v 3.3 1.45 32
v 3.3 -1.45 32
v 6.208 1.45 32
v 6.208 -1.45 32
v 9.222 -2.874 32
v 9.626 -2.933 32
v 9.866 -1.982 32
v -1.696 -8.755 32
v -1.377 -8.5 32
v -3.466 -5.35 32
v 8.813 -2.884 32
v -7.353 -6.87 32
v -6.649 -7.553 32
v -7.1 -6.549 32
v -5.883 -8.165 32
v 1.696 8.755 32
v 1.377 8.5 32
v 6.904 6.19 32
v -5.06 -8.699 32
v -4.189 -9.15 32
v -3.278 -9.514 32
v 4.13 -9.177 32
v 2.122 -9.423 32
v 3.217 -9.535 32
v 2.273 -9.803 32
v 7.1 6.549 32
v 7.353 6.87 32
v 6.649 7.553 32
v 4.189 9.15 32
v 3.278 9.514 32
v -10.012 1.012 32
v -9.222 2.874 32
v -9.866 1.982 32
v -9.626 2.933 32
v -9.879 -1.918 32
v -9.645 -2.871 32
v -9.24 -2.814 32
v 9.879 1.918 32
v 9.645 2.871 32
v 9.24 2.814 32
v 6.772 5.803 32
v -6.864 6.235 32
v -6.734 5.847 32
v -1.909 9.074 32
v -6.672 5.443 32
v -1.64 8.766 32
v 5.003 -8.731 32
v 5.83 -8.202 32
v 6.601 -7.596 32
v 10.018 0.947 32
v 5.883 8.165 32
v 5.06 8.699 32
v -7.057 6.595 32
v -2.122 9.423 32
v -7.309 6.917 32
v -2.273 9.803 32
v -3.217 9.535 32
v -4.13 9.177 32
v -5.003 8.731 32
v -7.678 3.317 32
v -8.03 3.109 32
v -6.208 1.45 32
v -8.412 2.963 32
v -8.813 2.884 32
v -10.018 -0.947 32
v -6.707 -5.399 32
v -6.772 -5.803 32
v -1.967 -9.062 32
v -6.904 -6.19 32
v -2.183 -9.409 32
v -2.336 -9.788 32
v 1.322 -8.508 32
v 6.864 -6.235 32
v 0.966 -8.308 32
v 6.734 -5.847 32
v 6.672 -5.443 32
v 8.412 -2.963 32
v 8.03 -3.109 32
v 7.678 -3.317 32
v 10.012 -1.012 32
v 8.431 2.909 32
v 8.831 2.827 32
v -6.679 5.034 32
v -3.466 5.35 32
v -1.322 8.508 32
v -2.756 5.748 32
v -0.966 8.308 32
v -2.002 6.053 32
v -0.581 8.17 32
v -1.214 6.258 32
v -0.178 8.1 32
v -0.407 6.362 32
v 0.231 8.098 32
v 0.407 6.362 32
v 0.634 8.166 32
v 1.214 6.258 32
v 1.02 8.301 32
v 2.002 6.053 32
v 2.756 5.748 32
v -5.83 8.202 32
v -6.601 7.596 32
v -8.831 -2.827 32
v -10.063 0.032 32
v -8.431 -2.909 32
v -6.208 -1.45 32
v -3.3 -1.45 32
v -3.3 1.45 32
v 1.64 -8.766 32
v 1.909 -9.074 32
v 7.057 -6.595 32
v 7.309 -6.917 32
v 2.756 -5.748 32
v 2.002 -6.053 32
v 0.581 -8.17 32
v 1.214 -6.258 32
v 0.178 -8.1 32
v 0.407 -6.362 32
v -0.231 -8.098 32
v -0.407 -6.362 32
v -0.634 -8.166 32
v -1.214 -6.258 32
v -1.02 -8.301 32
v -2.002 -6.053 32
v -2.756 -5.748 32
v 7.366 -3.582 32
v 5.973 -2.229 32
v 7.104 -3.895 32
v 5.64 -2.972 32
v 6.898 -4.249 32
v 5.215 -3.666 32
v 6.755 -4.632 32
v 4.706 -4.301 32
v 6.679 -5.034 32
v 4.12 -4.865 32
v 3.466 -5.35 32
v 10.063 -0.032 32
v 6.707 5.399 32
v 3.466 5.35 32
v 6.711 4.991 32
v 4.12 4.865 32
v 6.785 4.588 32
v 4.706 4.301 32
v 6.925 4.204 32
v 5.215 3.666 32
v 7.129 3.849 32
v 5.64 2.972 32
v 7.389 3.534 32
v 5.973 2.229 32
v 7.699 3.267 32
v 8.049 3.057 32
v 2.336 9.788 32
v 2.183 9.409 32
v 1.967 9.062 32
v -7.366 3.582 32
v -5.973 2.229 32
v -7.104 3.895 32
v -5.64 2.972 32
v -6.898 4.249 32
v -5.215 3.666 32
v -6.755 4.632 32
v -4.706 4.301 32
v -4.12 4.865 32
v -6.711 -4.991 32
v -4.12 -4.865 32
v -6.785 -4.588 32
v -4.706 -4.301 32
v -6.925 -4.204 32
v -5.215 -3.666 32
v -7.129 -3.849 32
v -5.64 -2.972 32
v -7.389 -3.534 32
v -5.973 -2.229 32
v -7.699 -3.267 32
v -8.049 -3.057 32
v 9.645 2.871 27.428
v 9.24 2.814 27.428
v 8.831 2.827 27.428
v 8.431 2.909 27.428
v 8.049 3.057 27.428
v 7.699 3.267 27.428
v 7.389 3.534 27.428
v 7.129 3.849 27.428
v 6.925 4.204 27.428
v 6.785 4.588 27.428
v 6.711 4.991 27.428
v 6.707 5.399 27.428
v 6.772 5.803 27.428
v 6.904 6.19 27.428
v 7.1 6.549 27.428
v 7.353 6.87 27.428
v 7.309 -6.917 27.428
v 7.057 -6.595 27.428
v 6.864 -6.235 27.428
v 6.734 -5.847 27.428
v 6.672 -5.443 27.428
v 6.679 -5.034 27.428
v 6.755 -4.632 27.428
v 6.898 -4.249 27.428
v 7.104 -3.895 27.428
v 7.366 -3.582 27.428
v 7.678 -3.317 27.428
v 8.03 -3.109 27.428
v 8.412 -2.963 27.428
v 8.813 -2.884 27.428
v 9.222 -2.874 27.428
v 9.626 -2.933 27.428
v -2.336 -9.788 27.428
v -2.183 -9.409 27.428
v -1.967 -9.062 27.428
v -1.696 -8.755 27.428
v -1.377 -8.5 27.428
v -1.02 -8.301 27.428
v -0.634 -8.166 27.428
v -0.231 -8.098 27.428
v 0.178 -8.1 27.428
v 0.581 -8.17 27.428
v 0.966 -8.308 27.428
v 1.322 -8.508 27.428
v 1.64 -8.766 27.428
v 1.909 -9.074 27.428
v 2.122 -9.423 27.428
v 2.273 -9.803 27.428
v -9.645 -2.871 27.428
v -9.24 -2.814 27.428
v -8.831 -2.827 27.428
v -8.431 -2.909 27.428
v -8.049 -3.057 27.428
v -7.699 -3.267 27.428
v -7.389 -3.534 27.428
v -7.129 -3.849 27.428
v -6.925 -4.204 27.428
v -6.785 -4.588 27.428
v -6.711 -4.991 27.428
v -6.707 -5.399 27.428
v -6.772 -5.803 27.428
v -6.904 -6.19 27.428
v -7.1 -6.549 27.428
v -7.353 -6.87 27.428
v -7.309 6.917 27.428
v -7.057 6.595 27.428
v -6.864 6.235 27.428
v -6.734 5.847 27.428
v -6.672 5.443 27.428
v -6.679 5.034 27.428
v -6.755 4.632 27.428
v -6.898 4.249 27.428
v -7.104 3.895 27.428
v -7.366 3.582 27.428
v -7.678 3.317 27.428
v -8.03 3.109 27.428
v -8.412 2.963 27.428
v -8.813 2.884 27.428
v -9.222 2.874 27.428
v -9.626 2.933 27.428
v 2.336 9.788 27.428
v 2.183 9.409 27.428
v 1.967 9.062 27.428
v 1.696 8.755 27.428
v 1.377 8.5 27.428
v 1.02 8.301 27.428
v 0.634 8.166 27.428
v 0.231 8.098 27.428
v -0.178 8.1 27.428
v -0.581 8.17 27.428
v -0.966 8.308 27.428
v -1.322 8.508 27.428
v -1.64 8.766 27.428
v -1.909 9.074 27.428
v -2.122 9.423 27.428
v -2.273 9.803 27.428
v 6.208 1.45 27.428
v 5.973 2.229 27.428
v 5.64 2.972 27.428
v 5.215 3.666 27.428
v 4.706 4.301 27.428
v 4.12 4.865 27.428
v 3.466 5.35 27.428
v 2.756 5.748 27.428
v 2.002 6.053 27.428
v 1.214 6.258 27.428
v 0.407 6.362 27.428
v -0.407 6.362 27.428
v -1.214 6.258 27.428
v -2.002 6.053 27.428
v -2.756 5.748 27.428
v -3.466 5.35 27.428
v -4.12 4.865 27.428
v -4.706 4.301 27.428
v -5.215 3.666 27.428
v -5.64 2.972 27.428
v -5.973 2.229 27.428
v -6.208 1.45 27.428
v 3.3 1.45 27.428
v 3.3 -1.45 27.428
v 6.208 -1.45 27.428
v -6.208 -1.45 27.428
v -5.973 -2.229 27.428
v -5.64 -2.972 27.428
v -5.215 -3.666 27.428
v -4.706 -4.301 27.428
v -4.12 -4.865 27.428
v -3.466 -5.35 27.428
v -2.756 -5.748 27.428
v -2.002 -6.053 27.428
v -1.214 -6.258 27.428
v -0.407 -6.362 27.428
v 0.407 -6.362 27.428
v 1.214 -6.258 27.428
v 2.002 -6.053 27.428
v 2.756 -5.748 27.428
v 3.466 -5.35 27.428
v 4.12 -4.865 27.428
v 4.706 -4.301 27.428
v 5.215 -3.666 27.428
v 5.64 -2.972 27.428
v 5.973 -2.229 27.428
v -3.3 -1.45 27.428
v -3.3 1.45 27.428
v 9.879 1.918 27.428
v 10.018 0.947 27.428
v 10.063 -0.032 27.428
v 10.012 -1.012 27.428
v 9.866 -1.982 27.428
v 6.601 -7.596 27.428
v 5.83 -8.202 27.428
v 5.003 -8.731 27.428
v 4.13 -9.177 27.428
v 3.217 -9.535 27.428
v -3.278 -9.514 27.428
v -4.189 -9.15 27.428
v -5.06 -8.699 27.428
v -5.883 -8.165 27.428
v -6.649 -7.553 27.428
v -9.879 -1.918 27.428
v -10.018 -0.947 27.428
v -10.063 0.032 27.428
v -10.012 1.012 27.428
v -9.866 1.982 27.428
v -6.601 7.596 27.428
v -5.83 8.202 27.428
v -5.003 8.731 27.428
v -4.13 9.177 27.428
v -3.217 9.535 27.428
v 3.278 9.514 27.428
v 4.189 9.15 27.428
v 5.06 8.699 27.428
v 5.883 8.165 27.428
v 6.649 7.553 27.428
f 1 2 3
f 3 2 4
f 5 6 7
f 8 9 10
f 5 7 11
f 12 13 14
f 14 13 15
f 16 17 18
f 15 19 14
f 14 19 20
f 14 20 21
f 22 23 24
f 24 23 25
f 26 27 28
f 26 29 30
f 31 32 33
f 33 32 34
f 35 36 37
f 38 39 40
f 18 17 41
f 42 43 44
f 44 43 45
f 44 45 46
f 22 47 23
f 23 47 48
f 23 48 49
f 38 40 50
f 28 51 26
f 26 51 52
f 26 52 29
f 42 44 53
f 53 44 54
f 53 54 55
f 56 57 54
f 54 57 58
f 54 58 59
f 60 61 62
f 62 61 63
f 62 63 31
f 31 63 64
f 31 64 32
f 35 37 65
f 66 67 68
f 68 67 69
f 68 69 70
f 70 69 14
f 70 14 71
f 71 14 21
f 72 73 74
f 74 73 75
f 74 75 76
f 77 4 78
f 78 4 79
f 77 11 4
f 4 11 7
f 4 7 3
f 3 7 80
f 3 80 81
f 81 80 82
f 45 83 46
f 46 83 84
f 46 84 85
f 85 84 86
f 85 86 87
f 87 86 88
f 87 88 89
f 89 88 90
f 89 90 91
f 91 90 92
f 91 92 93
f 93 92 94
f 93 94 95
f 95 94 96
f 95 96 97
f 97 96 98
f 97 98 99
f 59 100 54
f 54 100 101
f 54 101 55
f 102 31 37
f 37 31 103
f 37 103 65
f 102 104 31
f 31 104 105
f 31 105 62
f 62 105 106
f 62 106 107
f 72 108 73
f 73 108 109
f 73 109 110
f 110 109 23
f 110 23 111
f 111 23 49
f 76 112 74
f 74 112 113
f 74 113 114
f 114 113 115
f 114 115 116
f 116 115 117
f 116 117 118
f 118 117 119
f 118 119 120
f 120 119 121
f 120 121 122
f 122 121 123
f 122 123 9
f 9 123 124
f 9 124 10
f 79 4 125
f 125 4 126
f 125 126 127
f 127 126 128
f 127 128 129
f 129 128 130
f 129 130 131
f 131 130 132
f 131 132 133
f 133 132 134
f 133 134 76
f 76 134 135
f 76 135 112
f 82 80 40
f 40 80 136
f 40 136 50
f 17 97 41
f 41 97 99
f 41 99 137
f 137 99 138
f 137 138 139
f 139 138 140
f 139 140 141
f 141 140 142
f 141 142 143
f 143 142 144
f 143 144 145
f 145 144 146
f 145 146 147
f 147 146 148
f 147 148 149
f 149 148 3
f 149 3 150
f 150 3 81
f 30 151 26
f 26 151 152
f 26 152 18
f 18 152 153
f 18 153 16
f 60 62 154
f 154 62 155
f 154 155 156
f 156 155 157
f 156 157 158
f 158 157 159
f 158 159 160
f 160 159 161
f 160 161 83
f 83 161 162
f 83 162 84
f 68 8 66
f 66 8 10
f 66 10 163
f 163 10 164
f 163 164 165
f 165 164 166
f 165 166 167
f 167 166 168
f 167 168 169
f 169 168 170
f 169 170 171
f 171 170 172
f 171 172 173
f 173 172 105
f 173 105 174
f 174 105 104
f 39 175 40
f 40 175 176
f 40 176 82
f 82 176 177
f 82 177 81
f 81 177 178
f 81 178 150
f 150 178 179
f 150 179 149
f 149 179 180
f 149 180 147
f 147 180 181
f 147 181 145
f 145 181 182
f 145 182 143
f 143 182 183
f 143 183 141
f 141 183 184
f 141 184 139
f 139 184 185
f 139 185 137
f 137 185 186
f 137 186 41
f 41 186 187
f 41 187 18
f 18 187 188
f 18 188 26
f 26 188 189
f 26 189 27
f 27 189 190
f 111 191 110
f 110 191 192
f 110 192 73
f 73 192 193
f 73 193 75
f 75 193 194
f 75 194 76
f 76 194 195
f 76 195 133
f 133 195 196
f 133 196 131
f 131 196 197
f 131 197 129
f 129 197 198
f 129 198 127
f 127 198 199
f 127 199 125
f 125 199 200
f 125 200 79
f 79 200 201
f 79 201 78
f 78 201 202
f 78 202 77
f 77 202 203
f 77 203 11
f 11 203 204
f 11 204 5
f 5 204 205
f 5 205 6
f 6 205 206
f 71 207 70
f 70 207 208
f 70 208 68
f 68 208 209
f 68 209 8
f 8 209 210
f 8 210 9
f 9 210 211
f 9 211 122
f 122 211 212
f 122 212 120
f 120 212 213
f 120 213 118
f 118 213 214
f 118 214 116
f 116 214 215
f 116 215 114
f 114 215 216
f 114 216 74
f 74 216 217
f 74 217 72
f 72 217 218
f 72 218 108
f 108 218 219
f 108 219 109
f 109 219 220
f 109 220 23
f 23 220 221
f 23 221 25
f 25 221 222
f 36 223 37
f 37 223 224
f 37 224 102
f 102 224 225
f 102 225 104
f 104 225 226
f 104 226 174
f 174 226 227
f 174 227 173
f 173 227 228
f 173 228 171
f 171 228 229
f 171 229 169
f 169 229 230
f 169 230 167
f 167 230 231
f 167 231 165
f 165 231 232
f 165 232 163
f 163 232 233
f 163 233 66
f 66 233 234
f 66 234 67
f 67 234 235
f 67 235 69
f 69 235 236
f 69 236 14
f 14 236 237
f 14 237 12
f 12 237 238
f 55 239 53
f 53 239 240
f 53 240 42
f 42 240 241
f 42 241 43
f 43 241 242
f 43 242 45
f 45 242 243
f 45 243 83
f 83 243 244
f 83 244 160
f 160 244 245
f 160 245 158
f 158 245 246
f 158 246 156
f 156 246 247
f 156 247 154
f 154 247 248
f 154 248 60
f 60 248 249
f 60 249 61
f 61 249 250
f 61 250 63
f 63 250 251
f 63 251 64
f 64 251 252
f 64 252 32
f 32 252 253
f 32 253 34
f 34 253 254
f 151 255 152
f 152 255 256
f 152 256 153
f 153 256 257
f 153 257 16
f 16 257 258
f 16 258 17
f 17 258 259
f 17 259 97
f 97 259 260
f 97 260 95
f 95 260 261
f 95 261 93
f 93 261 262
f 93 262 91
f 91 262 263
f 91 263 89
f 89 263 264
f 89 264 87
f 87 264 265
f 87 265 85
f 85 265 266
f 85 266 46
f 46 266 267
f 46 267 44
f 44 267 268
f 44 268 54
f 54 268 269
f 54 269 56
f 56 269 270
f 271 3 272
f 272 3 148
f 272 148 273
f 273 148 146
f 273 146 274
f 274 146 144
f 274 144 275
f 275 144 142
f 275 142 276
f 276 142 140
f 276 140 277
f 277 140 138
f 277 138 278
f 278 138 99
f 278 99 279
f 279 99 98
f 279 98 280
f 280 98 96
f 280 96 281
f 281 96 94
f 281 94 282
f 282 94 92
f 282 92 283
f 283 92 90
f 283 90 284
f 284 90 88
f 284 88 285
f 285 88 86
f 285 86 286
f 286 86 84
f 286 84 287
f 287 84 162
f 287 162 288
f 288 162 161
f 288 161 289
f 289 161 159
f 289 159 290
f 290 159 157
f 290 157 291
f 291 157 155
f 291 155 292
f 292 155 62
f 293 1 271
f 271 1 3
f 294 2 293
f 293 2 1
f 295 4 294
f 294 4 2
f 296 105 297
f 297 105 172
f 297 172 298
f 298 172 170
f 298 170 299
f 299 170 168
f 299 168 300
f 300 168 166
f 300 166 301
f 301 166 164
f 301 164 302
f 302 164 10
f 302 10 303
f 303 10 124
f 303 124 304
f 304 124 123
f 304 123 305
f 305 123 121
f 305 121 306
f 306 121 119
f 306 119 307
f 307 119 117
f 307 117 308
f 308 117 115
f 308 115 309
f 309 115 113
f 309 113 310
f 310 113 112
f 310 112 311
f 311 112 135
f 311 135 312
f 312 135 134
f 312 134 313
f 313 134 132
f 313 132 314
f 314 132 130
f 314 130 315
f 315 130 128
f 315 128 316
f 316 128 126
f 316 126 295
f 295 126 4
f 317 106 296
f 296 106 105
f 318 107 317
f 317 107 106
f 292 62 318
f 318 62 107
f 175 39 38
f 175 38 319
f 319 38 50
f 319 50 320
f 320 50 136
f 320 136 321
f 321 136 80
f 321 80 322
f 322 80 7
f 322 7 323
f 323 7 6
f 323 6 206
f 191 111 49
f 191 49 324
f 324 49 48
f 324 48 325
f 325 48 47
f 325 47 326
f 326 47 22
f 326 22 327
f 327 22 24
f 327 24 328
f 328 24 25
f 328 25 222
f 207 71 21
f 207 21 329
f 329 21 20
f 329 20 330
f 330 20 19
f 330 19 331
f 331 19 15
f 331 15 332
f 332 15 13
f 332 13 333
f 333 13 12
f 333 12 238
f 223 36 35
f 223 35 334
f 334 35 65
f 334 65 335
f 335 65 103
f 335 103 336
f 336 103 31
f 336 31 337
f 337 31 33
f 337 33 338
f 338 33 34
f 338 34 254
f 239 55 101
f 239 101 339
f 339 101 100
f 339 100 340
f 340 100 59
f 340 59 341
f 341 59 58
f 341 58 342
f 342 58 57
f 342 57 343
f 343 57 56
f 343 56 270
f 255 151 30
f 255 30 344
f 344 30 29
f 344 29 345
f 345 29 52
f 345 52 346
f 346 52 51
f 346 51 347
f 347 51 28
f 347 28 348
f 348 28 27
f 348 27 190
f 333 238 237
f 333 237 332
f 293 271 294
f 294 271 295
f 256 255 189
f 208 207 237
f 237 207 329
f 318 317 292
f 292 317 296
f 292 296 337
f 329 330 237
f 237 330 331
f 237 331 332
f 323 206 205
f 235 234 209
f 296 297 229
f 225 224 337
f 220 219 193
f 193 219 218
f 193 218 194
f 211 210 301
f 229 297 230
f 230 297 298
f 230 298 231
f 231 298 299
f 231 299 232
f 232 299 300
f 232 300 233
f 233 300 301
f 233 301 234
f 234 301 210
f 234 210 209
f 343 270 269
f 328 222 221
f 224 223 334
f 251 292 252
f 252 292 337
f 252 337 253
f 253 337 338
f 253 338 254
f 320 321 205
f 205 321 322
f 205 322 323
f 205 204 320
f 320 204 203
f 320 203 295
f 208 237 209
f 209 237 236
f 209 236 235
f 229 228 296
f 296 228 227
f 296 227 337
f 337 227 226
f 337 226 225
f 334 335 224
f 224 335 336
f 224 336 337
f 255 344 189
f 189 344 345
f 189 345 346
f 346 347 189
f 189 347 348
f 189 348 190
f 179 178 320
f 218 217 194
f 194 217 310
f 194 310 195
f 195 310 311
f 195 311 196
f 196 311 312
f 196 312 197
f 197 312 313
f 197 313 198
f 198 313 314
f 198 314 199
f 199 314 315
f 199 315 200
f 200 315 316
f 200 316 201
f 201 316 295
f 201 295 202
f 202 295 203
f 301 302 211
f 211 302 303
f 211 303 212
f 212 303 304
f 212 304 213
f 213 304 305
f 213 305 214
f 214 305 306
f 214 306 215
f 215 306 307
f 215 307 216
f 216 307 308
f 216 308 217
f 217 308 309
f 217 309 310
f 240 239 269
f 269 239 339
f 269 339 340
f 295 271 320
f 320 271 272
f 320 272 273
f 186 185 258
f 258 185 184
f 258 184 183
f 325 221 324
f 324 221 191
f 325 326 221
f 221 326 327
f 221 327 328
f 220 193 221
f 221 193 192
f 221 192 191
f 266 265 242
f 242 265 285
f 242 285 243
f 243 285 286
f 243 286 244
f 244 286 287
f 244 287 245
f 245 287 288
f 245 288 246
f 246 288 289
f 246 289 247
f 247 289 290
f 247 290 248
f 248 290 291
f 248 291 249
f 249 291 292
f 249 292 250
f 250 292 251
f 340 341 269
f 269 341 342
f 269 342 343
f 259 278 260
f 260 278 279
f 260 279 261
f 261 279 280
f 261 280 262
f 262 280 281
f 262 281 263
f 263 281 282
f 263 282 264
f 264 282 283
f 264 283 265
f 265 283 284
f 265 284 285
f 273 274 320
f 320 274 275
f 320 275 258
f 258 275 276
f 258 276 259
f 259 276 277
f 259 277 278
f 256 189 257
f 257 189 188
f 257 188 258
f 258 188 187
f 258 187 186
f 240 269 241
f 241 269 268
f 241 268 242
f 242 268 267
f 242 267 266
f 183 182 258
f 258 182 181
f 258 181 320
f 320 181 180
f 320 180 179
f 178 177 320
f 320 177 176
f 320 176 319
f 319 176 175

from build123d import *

# Parameters (mm, degrees)
SKETCH3_R               = 21
BOSS_EXTRUDE3_DEPTH     = 32
CUT_EXTRUDE1_START      = -30
SKETCH4_R               = 21
SKETCH4_R_2             = 19.31273959
CUT_EXTRUDE1_DEPTH      = 28
SKETCH8_R               = 6.075
SKETCH8_R_2             = 2.409749928
CUT_EXTRUDE2_DEPTH      = 44.657759906
FILLET1_R               = 1
FILLET3_R               = 5
BOSS_EXTRUDE4_START     = -17
SKETCH11_R              = 8
BOSS_EXTRUDE4_DEPTH     = 15
SKETCH12_W              = 6.25
SKETCH12_H              = 3.5
BOSS_EXTRUDE5_DEPTH     = 17
SKETCH15_OUTSIDE_W      = 57.494
SKETCH15_OUTSIDE_H      = 57.494
SKETCH15_OUTSIDE_R      = 21
CUT_EXTRUDE3_DEPTH      = 17
SKETCH16_R              = 25.999161841
SKETCH16_R_2            = 10.063122469
CUT_EXTRUDE4_DEPTH      = 44.657759954
CUT_EXTRUDE5_DEPTH      = 35.948058737
CUT_EXTRUDE5_DEPTH_BACK = 35.948058737
SKETCH17_W              = 34.125667019
SKETCH17_H              = 28.204609122


with BuildPart() as part:
    # Sketch3 → Boss-Extrude3 (new body)
    with BuildSketch(Plane.XY):
        Circle(SKETCH3_R)
    extrude(amount=BOSS_EXTRUDE3_DEPTH)

    # Sketch4 → Cut-Extrude1 (cut)
    with BuildSketch(Plane.XY.offset(32).offset(CUT_EXTRUDE1_START)):
        Circle(SKETCH4_R)
        Circle(SKETCH4_R_2, mode=Mode.SUBTRACT)
    extrude(amount=CUT_EXTRUDE1_DEPTH, mode=Mode.SUBTRACT)

    # Cut-Sweep1: sweep along a curve in space
    with BuildLine() as cut_sweep1_path:
        ThreePointArc((19.31273959, 0, 2), (13.656169127, 13.656169127, 2), (0, 19.31273959, 2))
        ThreePointArc((0, 19.31273959, 2), (-13.656169127, 13.656169127, 2), (-19.31273959, 0, 2))
        ThreePointArc((-19.31273959, 0, 2), (-13.656169127, -13.656169127, 2), (0, -19.31273959, 2))
        ThreePointArc((0, -19.31273959, 2), (13.656169127, -13.656169127, 2), (19.31273959, 0, 2))
    # Sketch7 → Cut-Sweep1 (sweep, cut)
    with BuildSketch(Plane(origin=(0, 0, 0), x_dir=(1, 0, 0), z_dir=(0, 1, 0))):
        with BuildLine():
            Line((-19.31273959, -2), (-19.31273959, -30))
            ThreePointArc((-19.31273959, -30), (-17.146485403, -16), (-19.31273959, -2))
        make_face()
    sweep(path=cut_sweep1_path.line, mode=Mode.SUBTRACT)

    # Sketch8 → Cut-Extrude2 (cut, through all)
    with BuildSketch(Plane(origin=(0, 0, 0), x_dir=(-1, 0, 0), z_dir=(0, 0, -1))):
        Circle(SKETCH8_R)
        with Locations((9.076330186, 5.279334971)):
            Circle(SKETCH8_R_2)
        with Locations((-0.033873107, 10.5)):
            Circle(SKETCH8_R_2)
        with Locations((9.110203293, -5.220665029)):
            Circle(SKETCH8_R_2)
        with Locations((0.033873107, -10.5)):
            Circle(SKETCH8_R_2)
        with Locations((-9.076330186, -5.279334971)):
            Circle(SKETCH8_R_2)
        with Locations((-9.110203293, 5.220665029)):
            Circle(SKETCH8_R_2)
    extrude(amount=-CUT_EXTRUDE2_DEPTH, mode=Mode.SUBTRACT)

    # Sketch10 → Cut-Revolve1 (revolve, cut)
    with BuildSketch(Plane(origin=(0, 0, 0), x_dir=(1, 0, 0), z_dir=(0, 1, 0))):
        Polygon((-6.075, 0), (-15.24176478, -2.795793959), (-19.075, 0), align=None)
    revolve(axis=Axis((0, 0, 2), (0, 0, 1)), mode=Mode.SUBTRACT)

    # Fillet1
    fillet1_edges = [part.edges().sort_by_distance(p)[0] for p in [
        (-21, 0, 2),
        (-21, 0, 30),
    ]]
    fillet(fillet1_edges, radius=FILLET1_R)

    # Fillet3
    # the kernel refuses this fillet: 5 mm, written as the material it adds along each edge
    with BuildSketch(Plane(origin=(0, 0, 2.795793959), x_dir=(-1, 0, 0), z_dir=(0, 1, 0))) as fillet3_piece_1_section:
        with BuildLine():
            CenterArc((15.24176478 - FILLET3_R * 0.185863598659, -FILLET3_R * 1.10216314652), FILLET3_R, 53.894625959, 53.066683648)
            Line((15.24176478 - FILLET3_R * 0.47758946832, -FILLET3_R * 0.145661177375), (15.24176478, 0))
            Line((15.24176478, 0), (15.24176478 + FILLET3_R * 0.403408541274, -FILLET3_R * 0.294228529669))
        make_face()
    fillet3_piece_1 = revolve(axis=Axis((0, 0, 2.795793959), (0, 0, 1)), mode=Mode.PRIVATE)
    fillet3_piece_1 = fillet3_piece_1 - Plane(origin=(-9.110203293, -5.220665029, 2.265856679), x_dir=(-1, 0, 0), z_dir=(0, 0, -1)) * Cylinder(2.409749928, 70, mode=Mode.PRIVATE)
    fillet3_piece_1 = fillet3_piece_1 - Plane(origin=(-0.033873107, -10.5, 2.265856679), x_dir=(-1, 0, 0), z_dir=(0, 0, -1)) * Cylinder(2.409749928, 70, mode=Mode.PRIVATE)
    fillet3_piece_1 = fillet3_piece_1 - Plane(origin=(9.076330186, -5.279334971, 2.265856679), x_dir=(-1, 0, 0), z_dir=(0, 0, -1)) * Cylinder(2.409749928, 70, mode=Mode.PRIVATE)
    fillet3_piece_1 = fillet3_piece_1 - Plane(origin=(9.110203293, 5.220665029, 2.265856679), x_dir=(-1, 0, 0), z_dir=(0, 0, -1)) * Cylinder(2.409749928, 70, mode=Mode.PRIVATE)
    fillet3_piece_1 = fillet3_piece_1 - Plane(origin=(-9.076330186, 5.279334971, 2.265856679), x_dir=(-1, 0, 0), z_dir=(0, 0, -1)) * Cylinder(2.409749928, 70, mode=Mode.PRIVATE)
    fillet3_piece_1 = fillet3_piece_1 - Plane(origin=(0.033873107, 10.5, 2.265856679), x_dir=(-1, 0, 0), z_dir=(0, 0, -1)) * Cylinder(2.409749928, 70, mode=Mode.PRIVATE)
    add(fillet3_piece_1)

    # Sketch11 → Boss-Extrude4 (add)
    with BuildSketch(Plane.XY.offset(32).offset(BOSS_EXTRUDE4_START)):
        Circle(SKETCH11_R)
    extrude(amount=-BOSS_EXTRUDE4_DEPTH)

    # Sketch12 → Boss-Extrude5 (add)
    with BuildSketch(Plane.XY.offset(32)):
        with Locations((-6.125, 0)):
            Rectangle(SKETCH12_W, SKETCH12_H)
        with Locations((6.125, 0)):
            Rectangle(SKETCH12_W, SKETCH12_H)
    extrude(amount=-BOSS_EXTRUDE5_DEPTH)

    # Sketch15 outside → Cut-Extrude3 (cut)
    # profile 1 of 2: a face of its own
    with BuildSketch(Plane.XY.offset(32)):
        Rectangle(SKETCH15_OUTSIDE_W, SKETCH15_OUTSIDE_H)
        Circle(SKETCH15_OUTSIDE_R, mode=Mode.SUBTRACT)
    # profile 2 of 2: a face of its own
    with BuildSketch(Plane.XY.offset(32)):
        with BuildLine():
            Line((-6.207908263, 1.45), (-3.3, 1.45))
            Line((-3.3, 1.45), (-3.3, -1.45))
            Line((-3.3, -1.45), (-6.207908263, -1.45))
            ThreePointArc((-6.207908263, -1.45), (0, -6.375), (6.207908263, -1.45))
            Line((6.207908263, -1.45), (3.3, -1.45))
            Line((3.3, -1.45), (3.3, 1.45))
            Line((3.3, 1.45), (6.207908263, 1.45))
            ThreePointArc((6.207908263, 1.45), (0, 6.375), (-6.207908263, 1.45))
        make_face()
    extrude(amount=-CUT_EXTRUDE3_DEPTH, mode=Mode.SUBTRACT)

    # Sketch16 → Cut-Extrude4 (cut, through all)
    with BuildSketch(Plane.XY.offset(32)):
        Circle(SKETCH16_R)
        Circle(SKETCH16_R_2, mode=Mode.SUBTRACT)
    extrude(amount=-CUT_EXTRUDE4_DEPTH, mode=Mode.SUBTRACT)

    # Sketch17 → Cut-Extrude5 (cut, two sides: drawn at the far end of the back side and taken through both)
    with BuildSketch(Plane(origin=(0, 0, 0), x_dir=(1, 0, 0), z_dir=(0, 1, 0)).offset(-CUT_EXTRUDE5_DEPTH_BACK)):
        with Locations((1.878185032, -13.325973853)):
            Rectangle(SKETCH17_W, SKETCH17_H)
    extrude(amount=CUT_EXTRUDE5_DEPTH + CUT_EXTRUDE5_DEPTH_BACK, mode=Mode.SUBTRACT)


solid = part.part
